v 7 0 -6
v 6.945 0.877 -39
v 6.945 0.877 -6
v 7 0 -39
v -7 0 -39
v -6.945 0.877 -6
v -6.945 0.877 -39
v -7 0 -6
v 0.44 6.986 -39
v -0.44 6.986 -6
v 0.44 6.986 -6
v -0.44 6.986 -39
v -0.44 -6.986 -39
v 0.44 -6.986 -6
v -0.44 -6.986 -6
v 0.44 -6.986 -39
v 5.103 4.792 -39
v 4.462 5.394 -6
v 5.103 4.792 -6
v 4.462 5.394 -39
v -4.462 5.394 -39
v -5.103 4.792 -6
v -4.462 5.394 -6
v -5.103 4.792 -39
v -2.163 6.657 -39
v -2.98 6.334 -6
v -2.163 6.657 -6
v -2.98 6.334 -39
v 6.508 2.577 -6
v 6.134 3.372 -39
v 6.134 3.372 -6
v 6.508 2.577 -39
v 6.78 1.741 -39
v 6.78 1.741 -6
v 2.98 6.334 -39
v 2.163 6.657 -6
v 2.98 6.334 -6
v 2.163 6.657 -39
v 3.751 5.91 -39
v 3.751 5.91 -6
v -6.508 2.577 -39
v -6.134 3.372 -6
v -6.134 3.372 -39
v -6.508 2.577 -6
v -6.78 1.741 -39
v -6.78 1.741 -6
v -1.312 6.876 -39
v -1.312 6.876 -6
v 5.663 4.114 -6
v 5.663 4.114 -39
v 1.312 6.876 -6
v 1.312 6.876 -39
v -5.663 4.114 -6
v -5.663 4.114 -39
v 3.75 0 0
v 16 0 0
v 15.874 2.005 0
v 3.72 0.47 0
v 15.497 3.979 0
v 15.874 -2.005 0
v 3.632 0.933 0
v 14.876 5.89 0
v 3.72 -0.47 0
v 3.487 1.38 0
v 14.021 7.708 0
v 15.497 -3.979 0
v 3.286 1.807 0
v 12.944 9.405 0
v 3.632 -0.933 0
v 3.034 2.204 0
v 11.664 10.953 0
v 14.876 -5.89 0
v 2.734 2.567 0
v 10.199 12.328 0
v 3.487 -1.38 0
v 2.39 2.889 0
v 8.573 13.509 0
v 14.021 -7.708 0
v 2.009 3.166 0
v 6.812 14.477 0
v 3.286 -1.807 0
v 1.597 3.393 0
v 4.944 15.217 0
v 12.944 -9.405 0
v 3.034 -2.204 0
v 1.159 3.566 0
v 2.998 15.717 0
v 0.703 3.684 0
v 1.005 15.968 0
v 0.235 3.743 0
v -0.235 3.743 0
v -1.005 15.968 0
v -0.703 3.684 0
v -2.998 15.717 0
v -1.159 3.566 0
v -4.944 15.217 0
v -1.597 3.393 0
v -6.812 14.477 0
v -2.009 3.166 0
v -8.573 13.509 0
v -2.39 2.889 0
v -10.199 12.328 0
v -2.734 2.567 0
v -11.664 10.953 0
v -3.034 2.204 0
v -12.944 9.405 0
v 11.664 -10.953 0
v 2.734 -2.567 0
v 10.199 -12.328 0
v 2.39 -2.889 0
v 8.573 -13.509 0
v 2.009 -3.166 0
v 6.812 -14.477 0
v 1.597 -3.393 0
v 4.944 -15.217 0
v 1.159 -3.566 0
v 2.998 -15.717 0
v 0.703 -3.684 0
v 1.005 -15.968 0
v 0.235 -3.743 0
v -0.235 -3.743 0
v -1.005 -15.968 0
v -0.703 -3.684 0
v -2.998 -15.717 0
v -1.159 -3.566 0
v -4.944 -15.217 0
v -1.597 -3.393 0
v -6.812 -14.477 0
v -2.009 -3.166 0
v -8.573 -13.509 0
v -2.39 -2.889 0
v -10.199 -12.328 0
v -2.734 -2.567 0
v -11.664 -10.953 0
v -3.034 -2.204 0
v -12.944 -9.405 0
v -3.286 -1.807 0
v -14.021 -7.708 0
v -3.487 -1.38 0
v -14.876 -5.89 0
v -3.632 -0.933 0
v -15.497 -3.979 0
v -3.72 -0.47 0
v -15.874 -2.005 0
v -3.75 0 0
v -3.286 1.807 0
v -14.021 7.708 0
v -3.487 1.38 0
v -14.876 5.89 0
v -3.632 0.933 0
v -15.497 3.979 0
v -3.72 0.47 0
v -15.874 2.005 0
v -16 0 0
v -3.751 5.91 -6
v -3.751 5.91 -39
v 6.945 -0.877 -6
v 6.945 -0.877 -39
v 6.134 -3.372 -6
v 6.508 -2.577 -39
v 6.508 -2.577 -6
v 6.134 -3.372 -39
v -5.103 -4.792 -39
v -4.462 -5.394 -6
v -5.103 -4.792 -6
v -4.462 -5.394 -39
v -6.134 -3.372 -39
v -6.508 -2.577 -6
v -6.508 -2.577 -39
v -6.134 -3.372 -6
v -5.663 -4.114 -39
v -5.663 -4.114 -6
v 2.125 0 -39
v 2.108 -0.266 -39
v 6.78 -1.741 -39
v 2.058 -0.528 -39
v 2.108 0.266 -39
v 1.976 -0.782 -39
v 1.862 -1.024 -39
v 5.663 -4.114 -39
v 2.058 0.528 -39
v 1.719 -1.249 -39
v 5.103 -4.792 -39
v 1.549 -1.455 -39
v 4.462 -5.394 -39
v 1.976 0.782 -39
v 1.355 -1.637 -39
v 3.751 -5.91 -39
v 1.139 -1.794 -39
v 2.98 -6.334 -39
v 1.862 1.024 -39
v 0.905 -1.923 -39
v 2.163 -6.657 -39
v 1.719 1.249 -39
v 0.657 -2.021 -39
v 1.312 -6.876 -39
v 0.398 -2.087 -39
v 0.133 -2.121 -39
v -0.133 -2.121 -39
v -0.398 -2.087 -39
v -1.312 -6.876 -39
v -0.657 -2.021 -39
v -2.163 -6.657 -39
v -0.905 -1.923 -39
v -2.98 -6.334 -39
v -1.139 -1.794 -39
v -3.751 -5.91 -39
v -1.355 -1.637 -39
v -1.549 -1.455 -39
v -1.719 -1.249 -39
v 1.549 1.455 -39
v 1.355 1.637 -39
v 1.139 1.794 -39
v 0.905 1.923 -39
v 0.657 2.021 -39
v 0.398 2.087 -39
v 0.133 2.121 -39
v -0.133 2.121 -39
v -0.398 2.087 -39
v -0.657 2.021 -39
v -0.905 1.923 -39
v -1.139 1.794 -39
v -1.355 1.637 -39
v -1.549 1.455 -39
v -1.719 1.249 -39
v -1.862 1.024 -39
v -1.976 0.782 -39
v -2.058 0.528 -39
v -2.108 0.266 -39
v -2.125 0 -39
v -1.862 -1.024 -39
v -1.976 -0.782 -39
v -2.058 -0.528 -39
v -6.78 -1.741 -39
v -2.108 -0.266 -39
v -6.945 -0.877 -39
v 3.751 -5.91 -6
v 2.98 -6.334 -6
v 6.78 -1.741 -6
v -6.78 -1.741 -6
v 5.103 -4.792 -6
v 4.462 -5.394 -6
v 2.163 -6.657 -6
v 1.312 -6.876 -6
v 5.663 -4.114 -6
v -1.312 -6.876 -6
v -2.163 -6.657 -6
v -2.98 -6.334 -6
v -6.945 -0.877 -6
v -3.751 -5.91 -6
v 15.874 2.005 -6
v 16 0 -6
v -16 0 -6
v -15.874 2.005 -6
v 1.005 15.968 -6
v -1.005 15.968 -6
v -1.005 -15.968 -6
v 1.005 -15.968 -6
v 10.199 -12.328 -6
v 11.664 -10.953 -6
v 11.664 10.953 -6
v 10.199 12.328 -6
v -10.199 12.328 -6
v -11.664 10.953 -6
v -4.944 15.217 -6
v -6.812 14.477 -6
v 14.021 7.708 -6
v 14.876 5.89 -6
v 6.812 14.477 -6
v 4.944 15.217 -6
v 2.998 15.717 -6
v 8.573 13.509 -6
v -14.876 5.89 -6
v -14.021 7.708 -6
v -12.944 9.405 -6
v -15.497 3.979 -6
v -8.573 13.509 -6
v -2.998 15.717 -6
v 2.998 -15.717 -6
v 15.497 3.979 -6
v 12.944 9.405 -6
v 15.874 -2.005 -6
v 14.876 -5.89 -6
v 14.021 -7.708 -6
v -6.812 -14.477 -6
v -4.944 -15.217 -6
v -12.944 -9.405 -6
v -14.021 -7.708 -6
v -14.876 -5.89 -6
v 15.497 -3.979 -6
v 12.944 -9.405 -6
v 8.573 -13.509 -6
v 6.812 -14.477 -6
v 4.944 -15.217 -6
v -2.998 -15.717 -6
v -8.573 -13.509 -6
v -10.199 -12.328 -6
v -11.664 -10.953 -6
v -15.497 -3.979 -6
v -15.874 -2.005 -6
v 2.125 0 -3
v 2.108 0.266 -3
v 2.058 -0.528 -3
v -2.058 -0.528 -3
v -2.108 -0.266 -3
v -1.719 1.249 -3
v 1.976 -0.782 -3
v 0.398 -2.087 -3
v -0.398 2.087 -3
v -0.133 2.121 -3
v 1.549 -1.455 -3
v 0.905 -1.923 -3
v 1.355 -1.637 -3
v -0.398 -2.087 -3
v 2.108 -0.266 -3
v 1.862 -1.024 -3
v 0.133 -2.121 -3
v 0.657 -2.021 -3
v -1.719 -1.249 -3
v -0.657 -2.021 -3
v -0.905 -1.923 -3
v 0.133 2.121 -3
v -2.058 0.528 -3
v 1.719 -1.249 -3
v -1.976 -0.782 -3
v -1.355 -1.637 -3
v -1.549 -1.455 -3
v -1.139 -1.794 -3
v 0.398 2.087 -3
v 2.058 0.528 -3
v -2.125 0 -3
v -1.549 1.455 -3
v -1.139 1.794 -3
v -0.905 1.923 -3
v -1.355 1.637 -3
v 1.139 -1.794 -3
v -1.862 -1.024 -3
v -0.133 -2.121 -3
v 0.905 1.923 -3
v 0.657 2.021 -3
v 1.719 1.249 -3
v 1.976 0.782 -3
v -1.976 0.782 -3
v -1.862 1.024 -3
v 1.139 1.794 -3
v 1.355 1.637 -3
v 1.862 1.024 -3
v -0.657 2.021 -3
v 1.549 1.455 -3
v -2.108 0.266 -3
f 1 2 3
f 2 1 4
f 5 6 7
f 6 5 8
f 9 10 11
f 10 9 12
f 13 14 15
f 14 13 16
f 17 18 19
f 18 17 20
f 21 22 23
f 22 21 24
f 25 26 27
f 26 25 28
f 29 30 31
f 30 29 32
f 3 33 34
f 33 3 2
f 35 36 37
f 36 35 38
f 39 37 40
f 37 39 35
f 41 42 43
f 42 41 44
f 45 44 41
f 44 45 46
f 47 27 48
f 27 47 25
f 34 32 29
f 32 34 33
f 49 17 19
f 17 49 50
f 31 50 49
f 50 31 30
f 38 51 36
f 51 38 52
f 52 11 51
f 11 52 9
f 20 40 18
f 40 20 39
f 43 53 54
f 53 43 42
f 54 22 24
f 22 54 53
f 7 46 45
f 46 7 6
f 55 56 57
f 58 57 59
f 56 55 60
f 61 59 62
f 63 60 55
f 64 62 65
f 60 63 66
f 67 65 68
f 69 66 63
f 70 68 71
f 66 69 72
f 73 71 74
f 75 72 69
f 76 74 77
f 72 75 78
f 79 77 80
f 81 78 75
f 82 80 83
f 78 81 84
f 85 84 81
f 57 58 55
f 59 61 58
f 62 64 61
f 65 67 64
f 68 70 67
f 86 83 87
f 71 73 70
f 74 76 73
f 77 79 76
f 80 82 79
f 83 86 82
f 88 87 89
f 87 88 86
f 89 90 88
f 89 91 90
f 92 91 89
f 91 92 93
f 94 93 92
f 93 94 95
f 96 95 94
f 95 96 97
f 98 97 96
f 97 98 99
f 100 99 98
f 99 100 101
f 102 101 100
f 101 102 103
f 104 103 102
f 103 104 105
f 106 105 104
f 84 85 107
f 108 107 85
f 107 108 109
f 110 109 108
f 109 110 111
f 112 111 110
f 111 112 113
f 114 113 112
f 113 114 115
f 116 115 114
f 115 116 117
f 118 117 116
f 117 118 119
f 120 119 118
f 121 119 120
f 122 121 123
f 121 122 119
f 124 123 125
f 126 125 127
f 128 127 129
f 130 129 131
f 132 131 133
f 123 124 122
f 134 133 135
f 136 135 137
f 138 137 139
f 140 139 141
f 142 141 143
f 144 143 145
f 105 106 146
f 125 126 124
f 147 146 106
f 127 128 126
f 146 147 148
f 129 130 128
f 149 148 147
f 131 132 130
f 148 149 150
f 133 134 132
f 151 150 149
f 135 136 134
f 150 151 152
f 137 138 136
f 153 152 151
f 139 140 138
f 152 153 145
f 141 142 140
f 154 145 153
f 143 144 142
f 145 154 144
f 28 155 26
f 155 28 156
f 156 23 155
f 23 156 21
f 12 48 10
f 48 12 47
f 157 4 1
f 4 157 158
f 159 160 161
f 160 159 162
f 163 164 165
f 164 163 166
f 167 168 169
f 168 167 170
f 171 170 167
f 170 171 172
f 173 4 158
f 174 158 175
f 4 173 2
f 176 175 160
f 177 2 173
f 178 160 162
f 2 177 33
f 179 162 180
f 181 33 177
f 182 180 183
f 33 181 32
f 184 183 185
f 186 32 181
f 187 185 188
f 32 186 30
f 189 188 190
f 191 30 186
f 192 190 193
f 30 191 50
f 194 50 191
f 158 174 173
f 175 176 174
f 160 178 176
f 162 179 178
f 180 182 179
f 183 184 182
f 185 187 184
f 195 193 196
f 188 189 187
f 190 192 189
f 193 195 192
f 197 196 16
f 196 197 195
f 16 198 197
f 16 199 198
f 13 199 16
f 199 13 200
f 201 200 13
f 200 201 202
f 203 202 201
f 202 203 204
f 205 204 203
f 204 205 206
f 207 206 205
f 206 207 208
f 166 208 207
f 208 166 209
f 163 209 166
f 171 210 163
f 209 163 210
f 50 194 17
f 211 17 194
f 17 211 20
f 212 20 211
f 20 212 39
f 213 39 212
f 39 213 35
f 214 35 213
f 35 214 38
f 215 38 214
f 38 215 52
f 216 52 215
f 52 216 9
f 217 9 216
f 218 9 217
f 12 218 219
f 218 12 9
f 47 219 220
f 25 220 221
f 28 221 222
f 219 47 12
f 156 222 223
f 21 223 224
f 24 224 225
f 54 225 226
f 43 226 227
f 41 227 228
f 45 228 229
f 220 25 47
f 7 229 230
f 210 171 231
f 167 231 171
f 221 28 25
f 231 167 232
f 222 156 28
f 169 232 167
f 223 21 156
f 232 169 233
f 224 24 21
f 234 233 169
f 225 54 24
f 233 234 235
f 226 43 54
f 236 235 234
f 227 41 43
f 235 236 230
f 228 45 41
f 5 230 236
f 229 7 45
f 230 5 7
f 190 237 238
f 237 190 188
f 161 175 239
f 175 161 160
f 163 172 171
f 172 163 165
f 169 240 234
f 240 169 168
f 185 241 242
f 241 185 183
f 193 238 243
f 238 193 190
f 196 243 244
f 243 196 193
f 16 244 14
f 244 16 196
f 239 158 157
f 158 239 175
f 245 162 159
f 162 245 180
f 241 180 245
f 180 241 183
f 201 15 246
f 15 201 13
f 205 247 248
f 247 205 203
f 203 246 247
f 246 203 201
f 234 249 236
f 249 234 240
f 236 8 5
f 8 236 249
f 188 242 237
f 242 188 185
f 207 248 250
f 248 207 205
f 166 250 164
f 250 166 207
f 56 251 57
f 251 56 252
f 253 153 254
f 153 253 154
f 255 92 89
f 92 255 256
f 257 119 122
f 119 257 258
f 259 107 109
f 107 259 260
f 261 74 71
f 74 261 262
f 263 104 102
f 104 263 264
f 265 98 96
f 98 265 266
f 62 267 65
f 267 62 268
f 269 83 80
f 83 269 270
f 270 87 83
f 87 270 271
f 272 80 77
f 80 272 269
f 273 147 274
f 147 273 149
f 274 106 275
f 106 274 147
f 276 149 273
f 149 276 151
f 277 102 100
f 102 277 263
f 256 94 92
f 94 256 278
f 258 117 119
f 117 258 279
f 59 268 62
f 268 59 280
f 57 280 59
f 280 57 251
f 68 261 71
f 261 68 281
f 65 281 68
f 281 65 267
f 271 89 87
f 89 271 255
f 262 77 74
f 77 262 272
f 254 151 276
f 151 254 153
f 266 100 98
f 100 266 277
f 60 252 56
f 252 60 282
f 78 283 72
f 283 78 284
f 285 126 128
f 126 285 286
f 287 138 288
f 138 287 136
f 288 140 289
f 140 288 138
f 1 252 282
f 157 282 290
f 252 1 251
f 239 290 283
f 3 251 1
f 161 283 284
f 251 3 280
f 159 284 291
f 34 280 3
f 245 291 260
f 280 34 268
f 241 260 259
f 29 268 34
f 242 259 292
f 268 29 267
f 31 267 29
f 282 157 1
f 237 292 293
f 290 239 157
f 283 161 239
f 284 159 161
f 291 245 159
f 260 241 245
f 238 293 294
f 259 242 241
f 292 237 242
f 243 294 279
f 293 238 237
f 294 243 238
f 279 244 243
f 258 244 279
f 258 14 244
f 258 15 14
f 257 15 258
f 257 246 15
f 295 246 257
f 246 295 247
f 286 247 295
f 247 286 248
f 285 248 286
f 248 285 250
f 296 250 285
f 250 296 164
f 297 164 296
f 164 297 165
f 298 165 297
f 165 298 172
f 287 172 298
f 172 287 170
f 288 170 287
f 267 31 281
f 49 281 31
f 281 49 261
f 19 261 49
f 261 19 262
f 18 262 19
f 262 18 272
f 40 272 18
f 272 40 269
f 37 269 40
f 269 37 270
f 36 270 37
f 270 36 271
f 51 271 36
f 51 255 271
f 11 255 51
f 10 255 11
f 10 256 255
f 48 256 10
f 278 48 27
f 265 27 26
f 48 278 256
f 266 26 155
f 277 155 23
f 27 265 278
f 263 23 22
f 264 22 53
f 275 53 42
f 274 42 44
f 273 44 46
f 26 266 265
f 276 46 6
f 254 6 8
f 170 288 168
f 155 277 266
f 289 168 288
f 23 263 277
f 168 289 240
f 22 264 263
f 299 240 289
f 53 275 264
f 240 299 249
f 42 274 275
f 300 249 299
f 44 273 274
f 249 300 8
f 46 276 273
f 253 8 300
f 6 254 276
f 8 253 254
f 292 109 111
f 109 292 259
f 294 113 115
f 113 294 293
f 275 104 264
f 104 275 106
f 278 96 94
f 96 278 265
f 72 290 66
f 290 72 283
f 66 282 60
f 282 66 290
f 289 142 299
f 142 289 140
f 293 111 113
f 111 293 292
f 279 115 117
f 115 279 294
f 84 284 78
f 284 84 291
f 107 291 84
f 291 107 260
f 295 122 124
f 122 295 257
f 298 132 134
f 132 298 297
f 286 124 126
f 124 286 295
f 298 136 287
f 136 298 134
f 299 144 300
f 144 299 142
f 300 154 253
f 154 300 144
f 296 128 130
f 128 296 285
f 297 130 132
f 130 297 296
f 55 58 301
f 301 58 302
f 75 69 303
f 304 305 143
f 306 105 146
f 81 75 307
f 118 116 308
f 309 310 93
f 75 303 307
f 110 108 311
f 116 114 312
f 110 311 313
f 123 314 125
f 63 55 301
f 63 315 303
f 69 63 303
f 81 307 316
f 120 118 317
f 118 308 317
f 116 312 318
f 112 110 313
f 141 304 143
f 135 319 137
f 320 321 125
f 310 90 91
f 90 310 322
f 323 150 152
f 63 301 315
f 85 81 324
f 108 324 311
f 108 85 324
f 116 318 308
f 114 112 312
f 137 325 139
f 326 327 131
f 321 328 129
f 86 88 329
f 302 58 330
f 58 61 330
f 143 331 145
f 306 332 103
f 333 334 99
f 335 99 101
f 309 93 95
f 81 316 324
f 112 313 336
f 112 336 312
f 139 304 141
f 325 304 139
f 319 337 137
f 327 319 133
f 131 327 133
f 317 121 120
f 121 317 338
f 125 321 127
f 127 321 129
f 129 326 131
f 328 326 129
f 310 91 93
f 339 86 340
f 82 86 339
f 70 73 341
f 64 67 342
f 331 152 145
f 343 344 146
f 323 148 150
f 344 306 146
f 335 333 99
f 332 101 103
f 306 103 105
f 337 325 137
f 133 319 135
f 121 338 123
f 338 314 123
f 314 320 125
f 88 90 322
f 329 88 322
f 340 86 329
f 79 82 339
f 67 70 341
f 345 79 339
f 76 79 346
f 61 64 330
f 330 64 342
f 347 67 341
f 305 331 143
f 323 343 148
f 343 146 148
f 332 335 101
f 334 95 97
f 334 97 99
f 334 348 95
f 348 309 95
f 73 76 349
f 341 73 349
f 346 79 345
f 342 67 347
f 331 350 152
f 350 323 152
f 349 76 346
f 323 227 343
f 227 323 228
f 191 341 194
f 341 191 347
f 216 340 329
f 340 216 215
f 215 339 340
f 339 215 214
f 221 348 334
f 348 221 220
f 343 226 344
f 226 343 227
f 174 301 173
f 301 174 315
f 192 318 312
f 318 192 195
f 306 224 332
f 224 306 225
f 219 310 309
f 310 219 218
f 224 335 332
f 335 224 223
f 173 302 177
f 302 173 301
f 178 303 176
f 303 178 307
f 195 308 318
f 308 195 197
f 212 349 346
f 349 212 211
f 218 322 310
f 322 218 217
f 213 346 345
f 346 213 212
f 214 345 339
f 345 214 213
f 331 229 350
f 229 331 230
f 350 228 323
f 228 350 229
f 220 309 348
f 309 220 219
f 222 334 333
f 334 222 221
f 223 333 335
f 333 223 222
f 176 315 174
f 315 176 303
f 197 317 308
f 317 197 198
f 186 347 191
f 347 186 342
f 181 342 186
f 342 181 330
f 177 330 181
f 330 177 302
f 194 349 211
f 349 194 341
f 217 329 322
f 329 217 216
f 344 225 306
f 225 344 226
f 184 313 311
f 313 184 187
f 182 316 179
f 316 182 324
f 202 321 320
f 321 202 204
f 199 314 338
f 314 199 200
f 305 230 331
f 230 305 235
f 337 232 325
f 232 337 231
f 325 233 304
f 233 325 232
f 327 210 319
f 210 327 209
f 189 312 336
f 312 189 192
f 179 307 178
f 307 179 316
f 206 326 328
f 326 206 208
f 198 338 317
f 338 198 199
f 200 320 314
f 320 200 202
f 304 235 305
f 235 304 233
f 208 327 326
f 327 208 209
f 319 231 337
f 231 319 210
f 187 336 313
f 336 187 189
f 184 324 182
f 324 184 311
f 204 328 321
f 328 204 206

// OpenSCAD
$fn = 50;


difference() {
	union() {
		translate(v = [0, 0, -39.0000000000]) {
			cylinder(h = 39, r = 7.0000000000);
		}
		translate(v = [0, 0, -6.0000000000]) {
			cylinder(h = 6, r = 16.0000000000);
		}
	}
	union() {
		translate(v = [0, 0, 0]) {
			rotate(a = [0, 0, 0]) {
				difference() {
					union() {
						#translate(v = [0, 0, -39.0000000000]) {
							cylinder(h = 39, r = 2.0000000000);
						}
						#translate(v = [0, 0, -3]) {
							cylinder(h = 3, r = 7.0000000000, r1 = 2.1250000000, r2 = 3.7500000000);
						}
						#translate(v = [0, 0, -39.0000000000]) {
							cylinder(h = 39, r = 2.1250000000);
						}
						#translate(v = [0, 0, -39.0000000000]) {
							cylinder(h = 39, r = 2.0000000000);
						}
					}
					union();
				}
			}
		}
	}
}
